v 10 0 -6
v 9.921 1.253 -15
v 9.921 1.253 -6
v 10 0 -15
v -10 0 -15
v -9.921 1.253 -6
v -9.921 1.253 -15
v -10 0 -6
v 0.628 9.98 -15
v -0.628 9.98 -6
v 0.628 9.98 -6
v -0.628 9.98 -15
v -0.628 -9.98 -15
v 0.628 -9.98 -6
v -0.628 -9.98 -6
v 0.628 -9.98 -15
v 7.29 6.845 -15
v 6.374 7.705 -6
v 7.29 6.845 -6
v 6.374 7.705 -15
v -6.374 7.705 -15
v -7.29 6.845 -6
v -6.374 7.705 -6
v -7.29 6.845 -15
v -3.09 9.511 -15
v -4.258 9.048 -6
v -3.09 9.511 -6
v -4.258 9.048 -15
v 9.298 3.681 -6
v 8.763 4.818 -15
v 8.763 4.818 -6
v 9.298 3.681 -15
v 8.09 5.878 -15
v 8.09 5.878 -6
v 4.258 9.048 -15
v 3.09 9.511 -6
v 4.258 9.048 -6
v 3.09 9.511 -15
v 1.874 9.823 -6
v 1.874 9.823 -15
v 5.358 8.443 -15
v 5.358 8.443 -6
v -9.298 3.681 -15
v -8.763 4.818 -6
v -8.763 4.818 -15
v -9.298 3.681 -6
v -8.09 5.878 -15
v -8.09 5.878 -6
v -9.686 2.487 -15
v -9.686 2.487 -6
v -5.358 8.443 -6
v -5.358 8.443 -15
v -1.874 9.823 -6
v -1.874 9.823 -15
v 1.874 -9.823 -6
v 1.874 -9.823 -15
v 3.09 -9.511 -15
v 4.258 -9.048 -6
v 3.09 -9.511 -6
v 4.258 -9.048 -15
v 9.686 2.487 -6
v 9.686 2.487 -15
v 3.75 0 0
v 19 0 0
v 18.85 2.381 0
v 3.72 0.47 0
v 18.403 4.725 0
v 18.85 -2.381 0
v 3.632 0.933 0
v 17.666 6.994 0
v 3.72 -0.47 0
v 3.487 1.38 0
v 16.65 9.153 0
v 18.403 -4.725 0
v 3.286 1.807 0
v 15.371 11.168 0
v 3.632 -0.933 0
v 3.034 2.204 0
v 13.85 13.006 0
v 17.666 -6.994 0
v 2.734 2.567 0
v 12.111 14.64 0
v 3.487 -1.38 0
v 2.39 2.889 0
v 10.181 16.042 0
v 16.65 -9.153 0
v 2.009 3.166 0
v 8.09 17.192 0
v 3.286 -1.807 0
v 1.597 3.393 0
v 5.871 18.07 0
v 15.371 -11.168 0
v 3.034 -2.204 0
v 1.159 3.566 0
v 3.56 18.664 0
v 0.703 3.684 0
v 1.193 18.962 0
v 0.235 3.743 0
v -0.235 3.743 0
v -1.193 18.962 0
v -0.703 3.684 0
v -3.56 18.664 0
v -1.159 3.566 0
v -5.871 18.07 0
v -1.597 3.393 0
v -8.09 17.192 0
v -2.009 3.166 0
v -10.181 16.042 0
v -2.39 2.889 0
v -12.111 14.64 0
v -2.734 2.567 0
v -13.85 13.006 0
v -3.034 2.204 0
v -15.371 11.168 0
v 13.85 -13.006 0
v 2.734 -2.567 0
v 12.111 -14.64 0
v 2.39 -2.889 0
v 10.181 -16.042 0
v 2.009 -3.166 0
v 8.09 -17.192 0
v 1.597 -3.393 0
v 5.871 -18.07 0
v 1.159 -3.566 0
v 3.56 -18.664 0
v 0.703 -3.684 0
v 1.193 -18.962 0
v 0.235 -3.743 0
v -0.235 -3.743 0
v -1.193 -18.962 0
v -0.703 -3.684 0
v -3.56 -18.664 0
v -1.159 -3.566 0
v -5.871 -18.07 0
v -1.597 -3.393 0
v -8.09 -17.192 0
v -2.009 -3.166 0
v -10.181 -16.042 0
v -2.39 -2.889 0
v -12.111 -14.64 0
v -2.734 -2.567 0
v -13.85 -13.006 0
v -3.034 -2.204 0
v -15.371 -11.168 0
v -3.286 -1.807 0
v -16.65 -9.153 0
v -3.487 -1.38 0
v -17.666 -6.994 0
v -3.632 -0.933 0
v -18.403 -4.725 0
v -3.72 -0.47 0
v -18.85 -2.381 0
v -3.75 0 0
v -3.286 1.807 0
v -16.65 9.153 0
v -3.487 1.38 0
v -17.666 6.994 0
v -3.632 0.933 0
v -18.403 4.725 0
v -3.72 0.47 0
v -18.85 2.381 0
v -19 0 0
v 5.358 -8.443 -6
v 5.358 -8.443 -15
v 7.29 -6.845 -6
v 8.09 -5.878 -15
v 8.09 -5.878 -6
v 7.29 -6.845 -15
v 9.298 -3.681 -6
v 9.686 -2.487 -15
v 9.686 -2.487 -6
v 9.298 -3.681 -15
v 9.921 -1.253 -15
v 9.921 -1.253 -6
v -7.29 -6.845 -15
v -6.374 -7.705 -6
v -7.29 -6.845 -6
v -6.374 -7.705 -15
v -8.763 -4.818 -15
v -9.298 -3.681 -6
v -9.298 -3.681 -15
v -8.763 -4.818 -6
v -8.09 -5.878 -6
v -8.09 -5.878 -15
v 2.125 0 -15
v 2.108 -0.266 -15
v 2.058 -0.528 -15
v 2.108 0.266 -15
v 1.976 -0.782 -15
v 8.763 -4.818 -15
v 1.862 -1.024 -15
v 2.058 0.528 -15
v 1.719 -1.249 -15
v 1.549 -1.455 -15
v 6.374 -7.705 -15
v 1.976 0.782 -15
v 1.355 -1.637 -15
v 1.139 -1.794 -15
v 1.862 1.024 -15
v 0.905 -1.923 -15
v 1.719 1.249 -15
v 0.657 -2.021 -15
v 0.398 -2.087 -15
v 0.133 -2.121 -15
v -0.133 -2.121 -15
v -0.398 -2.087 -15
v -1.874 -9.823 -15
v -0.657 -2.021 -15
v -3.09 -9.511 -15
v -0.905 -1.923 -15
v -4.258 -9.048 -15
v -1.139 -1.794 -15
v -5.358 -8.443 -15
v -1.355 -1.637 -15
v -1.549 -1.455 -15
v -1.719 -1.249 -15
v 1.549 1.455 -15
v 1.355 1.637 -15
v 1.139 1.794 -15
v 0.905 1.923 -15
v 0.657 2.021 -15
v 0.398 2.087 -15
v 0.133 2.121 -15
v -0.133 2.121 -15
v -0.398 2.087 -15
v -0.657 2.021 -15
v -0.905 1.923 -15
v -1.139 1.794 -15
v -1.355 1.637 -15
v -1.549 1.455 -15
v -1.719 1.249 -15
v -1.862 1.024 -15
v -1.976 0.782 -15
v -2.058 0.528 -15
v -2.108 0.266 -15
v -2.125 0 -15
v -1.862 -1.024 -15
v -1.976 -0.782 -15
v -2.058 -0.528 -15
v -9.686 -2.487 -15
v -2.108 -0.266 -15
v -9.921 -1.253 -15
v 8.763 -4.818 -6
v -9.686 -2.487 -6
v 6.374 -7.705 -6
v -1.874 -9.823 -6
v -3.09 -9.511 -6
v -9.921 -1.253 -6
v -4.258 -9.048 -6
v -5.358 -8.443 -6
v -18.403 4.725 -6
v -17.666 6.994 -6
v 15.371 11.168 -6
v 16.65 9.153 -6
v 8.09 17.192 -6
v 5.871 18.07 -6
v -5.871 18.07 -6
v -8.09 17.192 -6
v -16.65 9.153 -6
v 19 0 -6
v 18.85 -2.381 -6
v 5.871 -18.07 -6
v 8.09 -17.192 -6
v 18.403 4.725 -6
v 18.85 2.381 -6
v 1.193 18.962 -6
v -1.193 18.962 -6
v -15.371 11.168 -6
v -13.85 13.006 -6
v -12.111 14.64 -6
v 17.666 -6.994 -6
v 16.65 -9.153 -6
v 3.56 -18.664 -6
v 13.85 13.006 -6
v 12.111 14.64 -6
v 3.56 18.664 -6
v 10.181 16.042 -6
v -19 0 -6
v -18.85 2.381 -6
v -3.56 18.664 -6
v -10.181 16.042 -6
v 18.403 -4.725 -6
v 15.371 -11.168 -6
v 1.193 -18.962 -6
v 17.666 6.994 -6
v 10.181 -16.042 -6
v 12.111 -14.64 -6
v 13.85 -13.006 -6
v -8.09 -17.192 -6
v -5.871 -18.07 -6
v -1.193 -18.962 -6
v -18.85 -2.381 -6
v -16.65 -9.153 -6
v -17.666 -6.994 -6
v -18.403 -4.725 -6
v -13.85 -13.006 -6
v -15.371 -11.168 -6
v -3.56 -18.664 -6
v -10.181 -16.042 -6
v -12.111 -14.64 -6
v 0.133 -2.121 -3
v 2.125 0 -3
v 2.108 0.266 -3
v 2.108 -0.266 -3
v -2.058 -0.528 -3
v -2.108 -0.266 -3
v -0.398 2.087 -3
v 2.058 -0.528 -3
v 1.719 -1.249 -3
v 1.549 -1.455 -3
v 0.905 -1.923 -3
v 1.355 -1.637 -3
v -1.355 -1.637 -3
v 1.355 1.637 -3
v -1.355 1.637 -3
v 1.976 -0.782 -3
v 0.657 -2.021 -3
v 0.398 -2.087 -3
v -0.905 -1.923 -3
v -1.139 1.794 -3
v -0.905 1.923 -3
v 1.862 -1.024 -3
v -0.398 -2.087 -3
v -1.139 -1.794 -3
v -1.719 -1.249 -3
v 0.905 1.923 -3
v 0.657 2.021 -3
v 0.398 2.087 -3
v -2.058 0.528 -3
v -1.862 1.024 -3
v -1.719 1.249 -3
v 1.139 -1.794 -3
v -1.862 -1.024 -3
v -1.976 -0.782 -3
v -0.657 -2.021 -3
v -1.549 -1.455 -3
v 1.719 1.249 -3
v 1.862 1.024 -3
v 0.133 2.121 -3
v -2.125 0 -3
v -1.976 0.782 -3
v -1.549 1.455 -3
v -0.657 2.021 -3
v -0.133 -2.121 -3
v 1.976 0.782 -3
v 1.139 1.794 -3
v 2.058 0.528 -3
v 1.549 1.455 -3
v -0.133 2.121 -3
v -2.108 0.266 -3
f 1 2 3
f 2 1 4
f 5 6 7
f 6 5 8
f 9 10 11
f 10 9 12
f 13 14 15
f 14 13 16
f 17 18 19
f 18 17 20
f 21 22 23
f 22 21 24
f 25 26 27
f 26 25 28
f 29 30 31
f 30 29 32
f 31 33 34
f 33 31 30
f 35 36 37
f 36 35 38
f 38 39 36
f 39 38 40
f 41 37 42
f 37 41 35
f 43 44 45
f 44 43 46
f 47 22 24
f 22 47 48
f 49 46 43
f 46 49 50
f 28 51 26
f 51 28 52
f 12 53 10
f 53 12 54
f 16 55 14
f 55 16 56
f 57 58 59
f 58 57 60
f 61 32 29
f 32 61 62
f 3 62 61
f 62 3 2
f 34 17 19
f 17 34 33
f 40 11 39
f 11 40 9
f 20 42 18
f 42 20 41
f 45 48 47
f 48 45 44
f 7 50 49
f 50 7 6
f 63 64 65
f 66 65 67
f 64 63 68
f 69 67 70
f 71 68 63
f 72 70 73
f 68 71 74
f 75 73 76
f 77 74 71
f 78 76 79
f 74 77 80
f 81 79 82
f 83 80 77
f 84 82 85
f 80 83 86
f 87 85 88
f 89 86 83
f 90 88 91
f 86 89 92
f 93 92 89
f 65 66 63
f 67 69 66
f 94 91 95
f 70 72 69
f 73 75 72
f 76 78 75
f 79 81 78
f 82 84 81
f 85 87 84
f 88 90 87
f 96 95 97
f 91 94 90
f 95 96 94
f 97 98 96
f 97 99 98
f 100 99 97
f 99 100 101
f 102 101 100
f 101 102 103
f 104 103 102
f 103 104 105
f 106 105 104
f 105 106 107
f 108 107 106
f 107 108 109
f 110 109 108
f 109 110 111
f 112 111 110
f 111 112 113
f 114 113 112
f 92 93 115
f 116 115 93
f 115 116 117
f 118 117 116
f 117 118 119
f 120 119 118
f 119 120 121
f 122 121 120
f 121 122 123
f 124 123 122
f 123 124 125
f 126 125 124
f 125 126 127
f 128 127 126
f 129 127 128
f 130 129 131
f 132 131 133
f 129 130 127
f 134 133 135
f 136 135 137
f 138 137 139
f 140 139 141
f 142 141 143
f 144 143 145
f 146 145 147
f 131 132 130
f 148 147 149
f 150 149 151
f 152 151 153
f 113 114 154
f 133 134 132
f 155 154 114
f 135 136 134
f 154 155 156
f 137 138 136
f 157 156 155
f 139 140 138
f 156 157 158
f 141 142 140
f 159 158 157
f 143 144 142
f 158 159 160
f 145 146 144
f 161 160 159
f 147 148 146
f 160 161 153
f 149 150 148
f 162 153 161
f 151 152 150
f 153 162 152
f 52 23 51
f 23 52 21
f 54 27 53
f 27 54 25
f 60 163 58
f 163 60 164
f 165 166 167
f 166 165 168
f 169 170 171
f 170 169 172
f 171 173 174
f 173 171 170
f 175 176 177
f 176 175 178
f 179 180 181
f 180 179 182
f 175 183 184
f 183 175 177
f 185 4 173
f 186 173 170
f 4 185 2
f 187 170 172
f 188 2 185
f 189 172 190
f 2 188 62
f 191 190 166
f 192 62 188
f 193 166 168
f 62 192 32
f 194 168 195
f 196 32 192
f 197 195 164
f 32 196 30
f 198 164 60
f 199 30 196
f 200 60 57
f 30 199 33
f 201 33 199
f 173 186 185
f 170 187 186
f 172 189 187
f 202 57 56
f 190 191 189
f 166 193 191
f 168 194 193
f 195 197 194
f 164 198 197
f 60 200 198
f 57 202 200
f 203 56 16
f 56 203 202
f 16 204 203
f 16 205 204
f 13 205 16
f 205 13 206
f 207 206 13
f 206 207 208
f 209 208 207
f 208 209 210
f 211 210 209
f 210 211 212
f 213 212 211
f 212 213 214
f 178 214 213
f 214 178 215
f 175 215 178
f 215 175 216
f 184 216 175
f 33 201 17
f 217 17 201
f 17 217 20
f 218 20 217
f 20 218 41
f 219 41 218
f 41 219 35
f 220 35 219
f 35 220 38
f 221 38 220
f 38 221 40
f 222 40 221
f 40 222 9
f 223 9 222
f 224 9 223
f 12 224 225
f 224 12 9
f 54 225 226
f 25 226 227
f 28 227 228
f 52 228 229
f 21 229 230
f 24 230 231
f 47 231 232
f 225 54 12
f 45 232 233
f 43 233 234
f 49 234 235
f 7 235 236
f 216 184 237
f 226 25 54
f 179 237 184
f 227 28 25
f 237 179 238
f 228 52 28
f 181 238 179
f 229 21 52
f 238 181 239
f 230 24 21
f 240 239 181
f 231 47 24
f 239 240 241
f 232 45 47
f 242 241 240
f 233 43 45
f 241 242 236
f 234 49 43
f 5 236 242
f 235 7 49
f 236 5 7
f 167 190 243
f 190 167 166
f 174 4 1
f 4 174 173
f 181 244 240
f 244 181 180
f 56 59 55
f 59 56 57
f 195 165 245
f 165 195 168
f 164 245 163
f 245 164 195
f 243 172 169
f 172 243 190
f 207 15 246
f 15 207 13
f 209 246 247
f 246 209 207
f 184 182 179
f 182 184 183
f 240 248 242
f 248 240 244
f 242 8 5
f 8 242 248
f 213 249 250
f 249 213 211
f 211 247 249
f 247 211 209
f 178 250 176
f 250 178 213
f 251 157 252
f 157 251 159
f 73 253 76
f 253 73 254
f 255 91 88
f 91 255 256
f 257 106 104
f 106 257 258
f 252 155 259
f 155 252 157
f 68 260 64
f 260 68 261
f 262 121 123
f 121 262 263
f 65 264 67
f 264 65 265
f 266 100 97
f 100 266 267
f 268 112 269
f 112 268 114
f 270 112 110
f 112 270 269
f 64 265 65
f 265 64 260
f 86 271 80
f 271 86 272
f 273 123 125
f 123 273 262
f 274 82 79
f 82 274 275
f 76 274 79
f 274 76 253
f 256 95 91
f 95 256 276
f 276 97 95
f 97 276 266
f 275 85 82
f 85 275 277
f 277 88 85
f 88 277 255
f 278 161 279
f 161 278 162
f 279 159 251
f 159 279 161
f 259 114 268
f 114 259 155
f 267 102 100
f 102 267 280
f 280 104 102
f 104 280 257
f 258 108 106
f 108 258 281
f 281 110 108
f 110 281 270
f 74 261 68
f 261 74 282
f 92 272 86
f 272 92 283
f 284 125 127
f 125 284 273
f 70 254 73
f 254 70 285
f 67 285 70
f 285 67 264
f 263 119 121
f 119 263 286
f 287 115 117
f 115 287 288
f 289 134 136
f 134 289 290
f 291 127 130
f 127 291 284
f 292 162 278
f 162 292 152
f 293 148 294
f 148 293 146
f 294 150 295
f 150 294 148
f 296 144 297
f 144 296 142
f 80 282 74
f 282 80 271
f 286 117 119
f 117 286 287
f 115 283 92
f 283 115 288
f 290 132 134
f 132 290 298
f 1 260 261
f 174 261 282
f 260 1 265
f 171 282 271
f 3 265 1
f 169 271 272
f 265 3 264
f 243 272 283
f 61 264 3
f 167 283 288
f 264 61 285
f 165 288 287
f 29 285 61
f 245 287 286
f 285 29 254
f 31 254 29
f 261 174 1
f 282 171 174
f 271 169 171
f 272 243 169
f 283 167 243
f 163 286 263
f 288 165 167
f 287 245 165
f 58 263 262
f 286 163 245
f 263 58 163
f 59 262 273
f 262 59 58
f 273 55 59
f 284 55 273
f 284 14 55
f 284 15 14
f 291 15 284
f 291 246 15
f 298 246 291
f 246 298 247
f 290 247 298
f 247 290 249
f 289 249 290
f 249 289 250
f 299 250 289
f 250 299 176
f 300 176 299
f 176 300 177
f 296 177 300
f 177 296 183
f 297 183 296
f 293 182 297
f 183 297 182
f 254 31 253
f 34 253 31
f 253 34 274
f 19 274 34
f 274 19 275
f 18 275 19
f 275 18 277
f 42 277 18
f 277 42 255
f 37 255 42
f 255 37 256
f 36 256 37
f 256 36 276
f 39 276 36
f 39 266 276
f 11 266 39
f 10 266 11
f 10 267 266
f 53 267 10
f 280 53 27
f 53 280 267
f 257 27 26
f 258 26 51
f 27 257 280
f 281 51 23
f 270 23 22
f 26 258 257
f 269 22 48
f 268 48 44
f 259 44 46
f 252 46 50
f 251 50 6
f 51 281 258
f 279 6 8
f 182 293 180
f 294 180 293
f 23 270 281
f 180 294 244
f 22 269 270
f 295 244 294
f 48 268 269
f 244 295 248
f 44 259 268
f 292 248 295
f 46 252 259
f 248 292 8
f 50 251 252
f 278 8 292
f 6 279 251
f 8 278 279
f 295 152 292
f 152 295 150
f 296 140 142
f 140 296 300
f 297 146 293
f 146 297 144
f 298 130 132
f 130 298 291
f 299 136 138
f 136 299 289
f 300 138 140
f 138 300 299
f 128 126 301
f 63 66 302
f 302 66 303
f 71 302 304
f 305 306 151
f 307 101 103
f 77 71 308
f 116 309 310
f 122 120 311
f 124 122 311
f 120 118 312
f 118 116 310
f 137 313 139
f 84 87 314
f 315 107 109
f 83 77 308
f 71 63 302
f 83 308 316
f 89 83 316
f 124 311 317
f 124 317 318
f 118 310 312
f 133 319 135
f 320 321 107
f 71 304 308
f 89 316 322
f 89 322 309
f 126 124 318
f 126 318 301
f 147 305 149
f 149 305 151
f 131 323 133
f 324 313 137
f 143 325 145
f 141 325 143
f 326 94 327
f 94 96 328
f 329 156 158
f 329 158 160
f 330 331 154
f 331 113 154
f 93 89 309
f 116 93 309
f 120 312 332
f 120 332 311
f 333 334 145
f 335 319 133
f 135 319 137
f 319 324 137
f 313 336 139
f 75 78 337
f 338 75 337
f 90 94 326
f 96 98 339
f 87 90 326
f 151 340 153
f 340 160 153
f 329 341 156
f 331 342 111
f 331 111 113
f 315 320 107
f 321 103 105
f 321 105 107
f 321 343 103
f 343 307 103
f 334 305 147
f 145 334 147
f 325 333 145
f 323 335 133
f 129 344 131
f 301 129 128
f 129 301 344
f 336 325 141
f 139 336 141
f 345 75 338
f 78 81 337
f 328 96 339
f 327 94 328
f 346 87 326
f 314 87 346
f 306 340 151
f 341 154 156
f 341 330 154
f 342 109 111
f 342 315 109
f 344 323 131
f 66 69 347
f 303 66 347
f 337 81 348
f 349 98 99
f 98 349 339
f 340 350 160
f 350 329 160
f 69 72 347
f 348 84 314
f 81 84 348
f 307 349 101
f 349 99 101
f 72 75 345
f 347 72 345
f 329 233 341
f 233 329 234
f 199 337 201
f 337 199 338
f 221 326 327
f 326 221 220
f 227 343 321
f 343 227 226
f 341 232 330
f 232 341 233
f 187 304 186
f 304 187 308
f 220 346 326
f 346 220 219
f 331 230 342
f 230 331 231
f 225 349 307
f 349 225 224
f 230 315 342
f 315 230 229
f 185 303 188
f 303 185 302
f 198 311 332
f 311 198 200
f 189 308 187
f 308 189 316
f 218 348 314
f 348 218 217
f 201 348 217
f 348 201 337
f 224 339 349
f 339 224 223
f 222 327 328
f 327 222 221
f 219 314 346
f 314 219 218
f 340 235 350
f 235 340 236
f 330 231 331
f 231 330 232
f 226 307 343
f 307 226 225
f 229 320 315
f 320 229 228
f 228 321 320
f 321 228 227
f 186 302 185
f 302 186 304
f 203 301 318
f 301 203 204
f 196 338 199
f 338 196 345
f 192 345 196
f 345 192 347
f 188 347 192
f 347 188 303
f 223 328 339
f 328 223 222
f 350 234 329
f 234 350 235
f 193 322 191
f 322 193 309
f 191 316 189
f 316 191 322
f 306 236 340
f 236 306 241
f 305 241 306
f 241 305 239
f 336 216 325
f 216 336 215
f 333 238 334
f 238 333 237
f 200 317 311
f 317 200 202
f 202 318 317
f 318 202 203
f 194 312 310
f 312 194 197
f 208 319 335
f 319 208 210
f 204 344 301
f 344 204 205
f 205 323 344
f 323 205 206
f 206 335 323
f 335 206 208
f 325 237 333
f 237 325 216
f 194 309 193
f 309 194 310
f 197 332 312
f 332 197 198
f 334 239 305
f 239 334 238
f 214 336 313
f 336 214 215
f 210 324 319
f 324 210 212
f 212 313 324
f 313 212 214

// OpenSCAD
$fn = 50;


difference() {
	union() {
		translate(v = [0, 0, -15.0000000000]) {
			cylinder(h = 15, r = 10.0000000000);
		}
		translate(v = [0, 0, -6.0000000000]) {
			cylinder(h = 6, r = 19.0000000000);
		}
	}
	union() {
		translate(v = [0, 0, 0]) {
			rotate(a = [0, 0, 0]) {
				difference() {
					union() {
						#translate(v = [0, 0, -15.0000000000]) {
							cylinder(h = 15, r = 2.0000000000);
						}
						#translate(v = [0, 0, -3]) {
							cylinder(h = 3, r = 10.0000000000, r1 = 2.1250000000, r2 = 3.7500000000);
						}
						#translate(v = [0, 0, -15.0000000000]) {
							cylinder(h = 15, r = 2.1250000000);
						}
						#translate(v = [0, 0, -15.0000000000]) {
							cylinder(h = 15, r = 2.0000000000);
						}
					}
					union();
				}
			}
		}
	}
}
